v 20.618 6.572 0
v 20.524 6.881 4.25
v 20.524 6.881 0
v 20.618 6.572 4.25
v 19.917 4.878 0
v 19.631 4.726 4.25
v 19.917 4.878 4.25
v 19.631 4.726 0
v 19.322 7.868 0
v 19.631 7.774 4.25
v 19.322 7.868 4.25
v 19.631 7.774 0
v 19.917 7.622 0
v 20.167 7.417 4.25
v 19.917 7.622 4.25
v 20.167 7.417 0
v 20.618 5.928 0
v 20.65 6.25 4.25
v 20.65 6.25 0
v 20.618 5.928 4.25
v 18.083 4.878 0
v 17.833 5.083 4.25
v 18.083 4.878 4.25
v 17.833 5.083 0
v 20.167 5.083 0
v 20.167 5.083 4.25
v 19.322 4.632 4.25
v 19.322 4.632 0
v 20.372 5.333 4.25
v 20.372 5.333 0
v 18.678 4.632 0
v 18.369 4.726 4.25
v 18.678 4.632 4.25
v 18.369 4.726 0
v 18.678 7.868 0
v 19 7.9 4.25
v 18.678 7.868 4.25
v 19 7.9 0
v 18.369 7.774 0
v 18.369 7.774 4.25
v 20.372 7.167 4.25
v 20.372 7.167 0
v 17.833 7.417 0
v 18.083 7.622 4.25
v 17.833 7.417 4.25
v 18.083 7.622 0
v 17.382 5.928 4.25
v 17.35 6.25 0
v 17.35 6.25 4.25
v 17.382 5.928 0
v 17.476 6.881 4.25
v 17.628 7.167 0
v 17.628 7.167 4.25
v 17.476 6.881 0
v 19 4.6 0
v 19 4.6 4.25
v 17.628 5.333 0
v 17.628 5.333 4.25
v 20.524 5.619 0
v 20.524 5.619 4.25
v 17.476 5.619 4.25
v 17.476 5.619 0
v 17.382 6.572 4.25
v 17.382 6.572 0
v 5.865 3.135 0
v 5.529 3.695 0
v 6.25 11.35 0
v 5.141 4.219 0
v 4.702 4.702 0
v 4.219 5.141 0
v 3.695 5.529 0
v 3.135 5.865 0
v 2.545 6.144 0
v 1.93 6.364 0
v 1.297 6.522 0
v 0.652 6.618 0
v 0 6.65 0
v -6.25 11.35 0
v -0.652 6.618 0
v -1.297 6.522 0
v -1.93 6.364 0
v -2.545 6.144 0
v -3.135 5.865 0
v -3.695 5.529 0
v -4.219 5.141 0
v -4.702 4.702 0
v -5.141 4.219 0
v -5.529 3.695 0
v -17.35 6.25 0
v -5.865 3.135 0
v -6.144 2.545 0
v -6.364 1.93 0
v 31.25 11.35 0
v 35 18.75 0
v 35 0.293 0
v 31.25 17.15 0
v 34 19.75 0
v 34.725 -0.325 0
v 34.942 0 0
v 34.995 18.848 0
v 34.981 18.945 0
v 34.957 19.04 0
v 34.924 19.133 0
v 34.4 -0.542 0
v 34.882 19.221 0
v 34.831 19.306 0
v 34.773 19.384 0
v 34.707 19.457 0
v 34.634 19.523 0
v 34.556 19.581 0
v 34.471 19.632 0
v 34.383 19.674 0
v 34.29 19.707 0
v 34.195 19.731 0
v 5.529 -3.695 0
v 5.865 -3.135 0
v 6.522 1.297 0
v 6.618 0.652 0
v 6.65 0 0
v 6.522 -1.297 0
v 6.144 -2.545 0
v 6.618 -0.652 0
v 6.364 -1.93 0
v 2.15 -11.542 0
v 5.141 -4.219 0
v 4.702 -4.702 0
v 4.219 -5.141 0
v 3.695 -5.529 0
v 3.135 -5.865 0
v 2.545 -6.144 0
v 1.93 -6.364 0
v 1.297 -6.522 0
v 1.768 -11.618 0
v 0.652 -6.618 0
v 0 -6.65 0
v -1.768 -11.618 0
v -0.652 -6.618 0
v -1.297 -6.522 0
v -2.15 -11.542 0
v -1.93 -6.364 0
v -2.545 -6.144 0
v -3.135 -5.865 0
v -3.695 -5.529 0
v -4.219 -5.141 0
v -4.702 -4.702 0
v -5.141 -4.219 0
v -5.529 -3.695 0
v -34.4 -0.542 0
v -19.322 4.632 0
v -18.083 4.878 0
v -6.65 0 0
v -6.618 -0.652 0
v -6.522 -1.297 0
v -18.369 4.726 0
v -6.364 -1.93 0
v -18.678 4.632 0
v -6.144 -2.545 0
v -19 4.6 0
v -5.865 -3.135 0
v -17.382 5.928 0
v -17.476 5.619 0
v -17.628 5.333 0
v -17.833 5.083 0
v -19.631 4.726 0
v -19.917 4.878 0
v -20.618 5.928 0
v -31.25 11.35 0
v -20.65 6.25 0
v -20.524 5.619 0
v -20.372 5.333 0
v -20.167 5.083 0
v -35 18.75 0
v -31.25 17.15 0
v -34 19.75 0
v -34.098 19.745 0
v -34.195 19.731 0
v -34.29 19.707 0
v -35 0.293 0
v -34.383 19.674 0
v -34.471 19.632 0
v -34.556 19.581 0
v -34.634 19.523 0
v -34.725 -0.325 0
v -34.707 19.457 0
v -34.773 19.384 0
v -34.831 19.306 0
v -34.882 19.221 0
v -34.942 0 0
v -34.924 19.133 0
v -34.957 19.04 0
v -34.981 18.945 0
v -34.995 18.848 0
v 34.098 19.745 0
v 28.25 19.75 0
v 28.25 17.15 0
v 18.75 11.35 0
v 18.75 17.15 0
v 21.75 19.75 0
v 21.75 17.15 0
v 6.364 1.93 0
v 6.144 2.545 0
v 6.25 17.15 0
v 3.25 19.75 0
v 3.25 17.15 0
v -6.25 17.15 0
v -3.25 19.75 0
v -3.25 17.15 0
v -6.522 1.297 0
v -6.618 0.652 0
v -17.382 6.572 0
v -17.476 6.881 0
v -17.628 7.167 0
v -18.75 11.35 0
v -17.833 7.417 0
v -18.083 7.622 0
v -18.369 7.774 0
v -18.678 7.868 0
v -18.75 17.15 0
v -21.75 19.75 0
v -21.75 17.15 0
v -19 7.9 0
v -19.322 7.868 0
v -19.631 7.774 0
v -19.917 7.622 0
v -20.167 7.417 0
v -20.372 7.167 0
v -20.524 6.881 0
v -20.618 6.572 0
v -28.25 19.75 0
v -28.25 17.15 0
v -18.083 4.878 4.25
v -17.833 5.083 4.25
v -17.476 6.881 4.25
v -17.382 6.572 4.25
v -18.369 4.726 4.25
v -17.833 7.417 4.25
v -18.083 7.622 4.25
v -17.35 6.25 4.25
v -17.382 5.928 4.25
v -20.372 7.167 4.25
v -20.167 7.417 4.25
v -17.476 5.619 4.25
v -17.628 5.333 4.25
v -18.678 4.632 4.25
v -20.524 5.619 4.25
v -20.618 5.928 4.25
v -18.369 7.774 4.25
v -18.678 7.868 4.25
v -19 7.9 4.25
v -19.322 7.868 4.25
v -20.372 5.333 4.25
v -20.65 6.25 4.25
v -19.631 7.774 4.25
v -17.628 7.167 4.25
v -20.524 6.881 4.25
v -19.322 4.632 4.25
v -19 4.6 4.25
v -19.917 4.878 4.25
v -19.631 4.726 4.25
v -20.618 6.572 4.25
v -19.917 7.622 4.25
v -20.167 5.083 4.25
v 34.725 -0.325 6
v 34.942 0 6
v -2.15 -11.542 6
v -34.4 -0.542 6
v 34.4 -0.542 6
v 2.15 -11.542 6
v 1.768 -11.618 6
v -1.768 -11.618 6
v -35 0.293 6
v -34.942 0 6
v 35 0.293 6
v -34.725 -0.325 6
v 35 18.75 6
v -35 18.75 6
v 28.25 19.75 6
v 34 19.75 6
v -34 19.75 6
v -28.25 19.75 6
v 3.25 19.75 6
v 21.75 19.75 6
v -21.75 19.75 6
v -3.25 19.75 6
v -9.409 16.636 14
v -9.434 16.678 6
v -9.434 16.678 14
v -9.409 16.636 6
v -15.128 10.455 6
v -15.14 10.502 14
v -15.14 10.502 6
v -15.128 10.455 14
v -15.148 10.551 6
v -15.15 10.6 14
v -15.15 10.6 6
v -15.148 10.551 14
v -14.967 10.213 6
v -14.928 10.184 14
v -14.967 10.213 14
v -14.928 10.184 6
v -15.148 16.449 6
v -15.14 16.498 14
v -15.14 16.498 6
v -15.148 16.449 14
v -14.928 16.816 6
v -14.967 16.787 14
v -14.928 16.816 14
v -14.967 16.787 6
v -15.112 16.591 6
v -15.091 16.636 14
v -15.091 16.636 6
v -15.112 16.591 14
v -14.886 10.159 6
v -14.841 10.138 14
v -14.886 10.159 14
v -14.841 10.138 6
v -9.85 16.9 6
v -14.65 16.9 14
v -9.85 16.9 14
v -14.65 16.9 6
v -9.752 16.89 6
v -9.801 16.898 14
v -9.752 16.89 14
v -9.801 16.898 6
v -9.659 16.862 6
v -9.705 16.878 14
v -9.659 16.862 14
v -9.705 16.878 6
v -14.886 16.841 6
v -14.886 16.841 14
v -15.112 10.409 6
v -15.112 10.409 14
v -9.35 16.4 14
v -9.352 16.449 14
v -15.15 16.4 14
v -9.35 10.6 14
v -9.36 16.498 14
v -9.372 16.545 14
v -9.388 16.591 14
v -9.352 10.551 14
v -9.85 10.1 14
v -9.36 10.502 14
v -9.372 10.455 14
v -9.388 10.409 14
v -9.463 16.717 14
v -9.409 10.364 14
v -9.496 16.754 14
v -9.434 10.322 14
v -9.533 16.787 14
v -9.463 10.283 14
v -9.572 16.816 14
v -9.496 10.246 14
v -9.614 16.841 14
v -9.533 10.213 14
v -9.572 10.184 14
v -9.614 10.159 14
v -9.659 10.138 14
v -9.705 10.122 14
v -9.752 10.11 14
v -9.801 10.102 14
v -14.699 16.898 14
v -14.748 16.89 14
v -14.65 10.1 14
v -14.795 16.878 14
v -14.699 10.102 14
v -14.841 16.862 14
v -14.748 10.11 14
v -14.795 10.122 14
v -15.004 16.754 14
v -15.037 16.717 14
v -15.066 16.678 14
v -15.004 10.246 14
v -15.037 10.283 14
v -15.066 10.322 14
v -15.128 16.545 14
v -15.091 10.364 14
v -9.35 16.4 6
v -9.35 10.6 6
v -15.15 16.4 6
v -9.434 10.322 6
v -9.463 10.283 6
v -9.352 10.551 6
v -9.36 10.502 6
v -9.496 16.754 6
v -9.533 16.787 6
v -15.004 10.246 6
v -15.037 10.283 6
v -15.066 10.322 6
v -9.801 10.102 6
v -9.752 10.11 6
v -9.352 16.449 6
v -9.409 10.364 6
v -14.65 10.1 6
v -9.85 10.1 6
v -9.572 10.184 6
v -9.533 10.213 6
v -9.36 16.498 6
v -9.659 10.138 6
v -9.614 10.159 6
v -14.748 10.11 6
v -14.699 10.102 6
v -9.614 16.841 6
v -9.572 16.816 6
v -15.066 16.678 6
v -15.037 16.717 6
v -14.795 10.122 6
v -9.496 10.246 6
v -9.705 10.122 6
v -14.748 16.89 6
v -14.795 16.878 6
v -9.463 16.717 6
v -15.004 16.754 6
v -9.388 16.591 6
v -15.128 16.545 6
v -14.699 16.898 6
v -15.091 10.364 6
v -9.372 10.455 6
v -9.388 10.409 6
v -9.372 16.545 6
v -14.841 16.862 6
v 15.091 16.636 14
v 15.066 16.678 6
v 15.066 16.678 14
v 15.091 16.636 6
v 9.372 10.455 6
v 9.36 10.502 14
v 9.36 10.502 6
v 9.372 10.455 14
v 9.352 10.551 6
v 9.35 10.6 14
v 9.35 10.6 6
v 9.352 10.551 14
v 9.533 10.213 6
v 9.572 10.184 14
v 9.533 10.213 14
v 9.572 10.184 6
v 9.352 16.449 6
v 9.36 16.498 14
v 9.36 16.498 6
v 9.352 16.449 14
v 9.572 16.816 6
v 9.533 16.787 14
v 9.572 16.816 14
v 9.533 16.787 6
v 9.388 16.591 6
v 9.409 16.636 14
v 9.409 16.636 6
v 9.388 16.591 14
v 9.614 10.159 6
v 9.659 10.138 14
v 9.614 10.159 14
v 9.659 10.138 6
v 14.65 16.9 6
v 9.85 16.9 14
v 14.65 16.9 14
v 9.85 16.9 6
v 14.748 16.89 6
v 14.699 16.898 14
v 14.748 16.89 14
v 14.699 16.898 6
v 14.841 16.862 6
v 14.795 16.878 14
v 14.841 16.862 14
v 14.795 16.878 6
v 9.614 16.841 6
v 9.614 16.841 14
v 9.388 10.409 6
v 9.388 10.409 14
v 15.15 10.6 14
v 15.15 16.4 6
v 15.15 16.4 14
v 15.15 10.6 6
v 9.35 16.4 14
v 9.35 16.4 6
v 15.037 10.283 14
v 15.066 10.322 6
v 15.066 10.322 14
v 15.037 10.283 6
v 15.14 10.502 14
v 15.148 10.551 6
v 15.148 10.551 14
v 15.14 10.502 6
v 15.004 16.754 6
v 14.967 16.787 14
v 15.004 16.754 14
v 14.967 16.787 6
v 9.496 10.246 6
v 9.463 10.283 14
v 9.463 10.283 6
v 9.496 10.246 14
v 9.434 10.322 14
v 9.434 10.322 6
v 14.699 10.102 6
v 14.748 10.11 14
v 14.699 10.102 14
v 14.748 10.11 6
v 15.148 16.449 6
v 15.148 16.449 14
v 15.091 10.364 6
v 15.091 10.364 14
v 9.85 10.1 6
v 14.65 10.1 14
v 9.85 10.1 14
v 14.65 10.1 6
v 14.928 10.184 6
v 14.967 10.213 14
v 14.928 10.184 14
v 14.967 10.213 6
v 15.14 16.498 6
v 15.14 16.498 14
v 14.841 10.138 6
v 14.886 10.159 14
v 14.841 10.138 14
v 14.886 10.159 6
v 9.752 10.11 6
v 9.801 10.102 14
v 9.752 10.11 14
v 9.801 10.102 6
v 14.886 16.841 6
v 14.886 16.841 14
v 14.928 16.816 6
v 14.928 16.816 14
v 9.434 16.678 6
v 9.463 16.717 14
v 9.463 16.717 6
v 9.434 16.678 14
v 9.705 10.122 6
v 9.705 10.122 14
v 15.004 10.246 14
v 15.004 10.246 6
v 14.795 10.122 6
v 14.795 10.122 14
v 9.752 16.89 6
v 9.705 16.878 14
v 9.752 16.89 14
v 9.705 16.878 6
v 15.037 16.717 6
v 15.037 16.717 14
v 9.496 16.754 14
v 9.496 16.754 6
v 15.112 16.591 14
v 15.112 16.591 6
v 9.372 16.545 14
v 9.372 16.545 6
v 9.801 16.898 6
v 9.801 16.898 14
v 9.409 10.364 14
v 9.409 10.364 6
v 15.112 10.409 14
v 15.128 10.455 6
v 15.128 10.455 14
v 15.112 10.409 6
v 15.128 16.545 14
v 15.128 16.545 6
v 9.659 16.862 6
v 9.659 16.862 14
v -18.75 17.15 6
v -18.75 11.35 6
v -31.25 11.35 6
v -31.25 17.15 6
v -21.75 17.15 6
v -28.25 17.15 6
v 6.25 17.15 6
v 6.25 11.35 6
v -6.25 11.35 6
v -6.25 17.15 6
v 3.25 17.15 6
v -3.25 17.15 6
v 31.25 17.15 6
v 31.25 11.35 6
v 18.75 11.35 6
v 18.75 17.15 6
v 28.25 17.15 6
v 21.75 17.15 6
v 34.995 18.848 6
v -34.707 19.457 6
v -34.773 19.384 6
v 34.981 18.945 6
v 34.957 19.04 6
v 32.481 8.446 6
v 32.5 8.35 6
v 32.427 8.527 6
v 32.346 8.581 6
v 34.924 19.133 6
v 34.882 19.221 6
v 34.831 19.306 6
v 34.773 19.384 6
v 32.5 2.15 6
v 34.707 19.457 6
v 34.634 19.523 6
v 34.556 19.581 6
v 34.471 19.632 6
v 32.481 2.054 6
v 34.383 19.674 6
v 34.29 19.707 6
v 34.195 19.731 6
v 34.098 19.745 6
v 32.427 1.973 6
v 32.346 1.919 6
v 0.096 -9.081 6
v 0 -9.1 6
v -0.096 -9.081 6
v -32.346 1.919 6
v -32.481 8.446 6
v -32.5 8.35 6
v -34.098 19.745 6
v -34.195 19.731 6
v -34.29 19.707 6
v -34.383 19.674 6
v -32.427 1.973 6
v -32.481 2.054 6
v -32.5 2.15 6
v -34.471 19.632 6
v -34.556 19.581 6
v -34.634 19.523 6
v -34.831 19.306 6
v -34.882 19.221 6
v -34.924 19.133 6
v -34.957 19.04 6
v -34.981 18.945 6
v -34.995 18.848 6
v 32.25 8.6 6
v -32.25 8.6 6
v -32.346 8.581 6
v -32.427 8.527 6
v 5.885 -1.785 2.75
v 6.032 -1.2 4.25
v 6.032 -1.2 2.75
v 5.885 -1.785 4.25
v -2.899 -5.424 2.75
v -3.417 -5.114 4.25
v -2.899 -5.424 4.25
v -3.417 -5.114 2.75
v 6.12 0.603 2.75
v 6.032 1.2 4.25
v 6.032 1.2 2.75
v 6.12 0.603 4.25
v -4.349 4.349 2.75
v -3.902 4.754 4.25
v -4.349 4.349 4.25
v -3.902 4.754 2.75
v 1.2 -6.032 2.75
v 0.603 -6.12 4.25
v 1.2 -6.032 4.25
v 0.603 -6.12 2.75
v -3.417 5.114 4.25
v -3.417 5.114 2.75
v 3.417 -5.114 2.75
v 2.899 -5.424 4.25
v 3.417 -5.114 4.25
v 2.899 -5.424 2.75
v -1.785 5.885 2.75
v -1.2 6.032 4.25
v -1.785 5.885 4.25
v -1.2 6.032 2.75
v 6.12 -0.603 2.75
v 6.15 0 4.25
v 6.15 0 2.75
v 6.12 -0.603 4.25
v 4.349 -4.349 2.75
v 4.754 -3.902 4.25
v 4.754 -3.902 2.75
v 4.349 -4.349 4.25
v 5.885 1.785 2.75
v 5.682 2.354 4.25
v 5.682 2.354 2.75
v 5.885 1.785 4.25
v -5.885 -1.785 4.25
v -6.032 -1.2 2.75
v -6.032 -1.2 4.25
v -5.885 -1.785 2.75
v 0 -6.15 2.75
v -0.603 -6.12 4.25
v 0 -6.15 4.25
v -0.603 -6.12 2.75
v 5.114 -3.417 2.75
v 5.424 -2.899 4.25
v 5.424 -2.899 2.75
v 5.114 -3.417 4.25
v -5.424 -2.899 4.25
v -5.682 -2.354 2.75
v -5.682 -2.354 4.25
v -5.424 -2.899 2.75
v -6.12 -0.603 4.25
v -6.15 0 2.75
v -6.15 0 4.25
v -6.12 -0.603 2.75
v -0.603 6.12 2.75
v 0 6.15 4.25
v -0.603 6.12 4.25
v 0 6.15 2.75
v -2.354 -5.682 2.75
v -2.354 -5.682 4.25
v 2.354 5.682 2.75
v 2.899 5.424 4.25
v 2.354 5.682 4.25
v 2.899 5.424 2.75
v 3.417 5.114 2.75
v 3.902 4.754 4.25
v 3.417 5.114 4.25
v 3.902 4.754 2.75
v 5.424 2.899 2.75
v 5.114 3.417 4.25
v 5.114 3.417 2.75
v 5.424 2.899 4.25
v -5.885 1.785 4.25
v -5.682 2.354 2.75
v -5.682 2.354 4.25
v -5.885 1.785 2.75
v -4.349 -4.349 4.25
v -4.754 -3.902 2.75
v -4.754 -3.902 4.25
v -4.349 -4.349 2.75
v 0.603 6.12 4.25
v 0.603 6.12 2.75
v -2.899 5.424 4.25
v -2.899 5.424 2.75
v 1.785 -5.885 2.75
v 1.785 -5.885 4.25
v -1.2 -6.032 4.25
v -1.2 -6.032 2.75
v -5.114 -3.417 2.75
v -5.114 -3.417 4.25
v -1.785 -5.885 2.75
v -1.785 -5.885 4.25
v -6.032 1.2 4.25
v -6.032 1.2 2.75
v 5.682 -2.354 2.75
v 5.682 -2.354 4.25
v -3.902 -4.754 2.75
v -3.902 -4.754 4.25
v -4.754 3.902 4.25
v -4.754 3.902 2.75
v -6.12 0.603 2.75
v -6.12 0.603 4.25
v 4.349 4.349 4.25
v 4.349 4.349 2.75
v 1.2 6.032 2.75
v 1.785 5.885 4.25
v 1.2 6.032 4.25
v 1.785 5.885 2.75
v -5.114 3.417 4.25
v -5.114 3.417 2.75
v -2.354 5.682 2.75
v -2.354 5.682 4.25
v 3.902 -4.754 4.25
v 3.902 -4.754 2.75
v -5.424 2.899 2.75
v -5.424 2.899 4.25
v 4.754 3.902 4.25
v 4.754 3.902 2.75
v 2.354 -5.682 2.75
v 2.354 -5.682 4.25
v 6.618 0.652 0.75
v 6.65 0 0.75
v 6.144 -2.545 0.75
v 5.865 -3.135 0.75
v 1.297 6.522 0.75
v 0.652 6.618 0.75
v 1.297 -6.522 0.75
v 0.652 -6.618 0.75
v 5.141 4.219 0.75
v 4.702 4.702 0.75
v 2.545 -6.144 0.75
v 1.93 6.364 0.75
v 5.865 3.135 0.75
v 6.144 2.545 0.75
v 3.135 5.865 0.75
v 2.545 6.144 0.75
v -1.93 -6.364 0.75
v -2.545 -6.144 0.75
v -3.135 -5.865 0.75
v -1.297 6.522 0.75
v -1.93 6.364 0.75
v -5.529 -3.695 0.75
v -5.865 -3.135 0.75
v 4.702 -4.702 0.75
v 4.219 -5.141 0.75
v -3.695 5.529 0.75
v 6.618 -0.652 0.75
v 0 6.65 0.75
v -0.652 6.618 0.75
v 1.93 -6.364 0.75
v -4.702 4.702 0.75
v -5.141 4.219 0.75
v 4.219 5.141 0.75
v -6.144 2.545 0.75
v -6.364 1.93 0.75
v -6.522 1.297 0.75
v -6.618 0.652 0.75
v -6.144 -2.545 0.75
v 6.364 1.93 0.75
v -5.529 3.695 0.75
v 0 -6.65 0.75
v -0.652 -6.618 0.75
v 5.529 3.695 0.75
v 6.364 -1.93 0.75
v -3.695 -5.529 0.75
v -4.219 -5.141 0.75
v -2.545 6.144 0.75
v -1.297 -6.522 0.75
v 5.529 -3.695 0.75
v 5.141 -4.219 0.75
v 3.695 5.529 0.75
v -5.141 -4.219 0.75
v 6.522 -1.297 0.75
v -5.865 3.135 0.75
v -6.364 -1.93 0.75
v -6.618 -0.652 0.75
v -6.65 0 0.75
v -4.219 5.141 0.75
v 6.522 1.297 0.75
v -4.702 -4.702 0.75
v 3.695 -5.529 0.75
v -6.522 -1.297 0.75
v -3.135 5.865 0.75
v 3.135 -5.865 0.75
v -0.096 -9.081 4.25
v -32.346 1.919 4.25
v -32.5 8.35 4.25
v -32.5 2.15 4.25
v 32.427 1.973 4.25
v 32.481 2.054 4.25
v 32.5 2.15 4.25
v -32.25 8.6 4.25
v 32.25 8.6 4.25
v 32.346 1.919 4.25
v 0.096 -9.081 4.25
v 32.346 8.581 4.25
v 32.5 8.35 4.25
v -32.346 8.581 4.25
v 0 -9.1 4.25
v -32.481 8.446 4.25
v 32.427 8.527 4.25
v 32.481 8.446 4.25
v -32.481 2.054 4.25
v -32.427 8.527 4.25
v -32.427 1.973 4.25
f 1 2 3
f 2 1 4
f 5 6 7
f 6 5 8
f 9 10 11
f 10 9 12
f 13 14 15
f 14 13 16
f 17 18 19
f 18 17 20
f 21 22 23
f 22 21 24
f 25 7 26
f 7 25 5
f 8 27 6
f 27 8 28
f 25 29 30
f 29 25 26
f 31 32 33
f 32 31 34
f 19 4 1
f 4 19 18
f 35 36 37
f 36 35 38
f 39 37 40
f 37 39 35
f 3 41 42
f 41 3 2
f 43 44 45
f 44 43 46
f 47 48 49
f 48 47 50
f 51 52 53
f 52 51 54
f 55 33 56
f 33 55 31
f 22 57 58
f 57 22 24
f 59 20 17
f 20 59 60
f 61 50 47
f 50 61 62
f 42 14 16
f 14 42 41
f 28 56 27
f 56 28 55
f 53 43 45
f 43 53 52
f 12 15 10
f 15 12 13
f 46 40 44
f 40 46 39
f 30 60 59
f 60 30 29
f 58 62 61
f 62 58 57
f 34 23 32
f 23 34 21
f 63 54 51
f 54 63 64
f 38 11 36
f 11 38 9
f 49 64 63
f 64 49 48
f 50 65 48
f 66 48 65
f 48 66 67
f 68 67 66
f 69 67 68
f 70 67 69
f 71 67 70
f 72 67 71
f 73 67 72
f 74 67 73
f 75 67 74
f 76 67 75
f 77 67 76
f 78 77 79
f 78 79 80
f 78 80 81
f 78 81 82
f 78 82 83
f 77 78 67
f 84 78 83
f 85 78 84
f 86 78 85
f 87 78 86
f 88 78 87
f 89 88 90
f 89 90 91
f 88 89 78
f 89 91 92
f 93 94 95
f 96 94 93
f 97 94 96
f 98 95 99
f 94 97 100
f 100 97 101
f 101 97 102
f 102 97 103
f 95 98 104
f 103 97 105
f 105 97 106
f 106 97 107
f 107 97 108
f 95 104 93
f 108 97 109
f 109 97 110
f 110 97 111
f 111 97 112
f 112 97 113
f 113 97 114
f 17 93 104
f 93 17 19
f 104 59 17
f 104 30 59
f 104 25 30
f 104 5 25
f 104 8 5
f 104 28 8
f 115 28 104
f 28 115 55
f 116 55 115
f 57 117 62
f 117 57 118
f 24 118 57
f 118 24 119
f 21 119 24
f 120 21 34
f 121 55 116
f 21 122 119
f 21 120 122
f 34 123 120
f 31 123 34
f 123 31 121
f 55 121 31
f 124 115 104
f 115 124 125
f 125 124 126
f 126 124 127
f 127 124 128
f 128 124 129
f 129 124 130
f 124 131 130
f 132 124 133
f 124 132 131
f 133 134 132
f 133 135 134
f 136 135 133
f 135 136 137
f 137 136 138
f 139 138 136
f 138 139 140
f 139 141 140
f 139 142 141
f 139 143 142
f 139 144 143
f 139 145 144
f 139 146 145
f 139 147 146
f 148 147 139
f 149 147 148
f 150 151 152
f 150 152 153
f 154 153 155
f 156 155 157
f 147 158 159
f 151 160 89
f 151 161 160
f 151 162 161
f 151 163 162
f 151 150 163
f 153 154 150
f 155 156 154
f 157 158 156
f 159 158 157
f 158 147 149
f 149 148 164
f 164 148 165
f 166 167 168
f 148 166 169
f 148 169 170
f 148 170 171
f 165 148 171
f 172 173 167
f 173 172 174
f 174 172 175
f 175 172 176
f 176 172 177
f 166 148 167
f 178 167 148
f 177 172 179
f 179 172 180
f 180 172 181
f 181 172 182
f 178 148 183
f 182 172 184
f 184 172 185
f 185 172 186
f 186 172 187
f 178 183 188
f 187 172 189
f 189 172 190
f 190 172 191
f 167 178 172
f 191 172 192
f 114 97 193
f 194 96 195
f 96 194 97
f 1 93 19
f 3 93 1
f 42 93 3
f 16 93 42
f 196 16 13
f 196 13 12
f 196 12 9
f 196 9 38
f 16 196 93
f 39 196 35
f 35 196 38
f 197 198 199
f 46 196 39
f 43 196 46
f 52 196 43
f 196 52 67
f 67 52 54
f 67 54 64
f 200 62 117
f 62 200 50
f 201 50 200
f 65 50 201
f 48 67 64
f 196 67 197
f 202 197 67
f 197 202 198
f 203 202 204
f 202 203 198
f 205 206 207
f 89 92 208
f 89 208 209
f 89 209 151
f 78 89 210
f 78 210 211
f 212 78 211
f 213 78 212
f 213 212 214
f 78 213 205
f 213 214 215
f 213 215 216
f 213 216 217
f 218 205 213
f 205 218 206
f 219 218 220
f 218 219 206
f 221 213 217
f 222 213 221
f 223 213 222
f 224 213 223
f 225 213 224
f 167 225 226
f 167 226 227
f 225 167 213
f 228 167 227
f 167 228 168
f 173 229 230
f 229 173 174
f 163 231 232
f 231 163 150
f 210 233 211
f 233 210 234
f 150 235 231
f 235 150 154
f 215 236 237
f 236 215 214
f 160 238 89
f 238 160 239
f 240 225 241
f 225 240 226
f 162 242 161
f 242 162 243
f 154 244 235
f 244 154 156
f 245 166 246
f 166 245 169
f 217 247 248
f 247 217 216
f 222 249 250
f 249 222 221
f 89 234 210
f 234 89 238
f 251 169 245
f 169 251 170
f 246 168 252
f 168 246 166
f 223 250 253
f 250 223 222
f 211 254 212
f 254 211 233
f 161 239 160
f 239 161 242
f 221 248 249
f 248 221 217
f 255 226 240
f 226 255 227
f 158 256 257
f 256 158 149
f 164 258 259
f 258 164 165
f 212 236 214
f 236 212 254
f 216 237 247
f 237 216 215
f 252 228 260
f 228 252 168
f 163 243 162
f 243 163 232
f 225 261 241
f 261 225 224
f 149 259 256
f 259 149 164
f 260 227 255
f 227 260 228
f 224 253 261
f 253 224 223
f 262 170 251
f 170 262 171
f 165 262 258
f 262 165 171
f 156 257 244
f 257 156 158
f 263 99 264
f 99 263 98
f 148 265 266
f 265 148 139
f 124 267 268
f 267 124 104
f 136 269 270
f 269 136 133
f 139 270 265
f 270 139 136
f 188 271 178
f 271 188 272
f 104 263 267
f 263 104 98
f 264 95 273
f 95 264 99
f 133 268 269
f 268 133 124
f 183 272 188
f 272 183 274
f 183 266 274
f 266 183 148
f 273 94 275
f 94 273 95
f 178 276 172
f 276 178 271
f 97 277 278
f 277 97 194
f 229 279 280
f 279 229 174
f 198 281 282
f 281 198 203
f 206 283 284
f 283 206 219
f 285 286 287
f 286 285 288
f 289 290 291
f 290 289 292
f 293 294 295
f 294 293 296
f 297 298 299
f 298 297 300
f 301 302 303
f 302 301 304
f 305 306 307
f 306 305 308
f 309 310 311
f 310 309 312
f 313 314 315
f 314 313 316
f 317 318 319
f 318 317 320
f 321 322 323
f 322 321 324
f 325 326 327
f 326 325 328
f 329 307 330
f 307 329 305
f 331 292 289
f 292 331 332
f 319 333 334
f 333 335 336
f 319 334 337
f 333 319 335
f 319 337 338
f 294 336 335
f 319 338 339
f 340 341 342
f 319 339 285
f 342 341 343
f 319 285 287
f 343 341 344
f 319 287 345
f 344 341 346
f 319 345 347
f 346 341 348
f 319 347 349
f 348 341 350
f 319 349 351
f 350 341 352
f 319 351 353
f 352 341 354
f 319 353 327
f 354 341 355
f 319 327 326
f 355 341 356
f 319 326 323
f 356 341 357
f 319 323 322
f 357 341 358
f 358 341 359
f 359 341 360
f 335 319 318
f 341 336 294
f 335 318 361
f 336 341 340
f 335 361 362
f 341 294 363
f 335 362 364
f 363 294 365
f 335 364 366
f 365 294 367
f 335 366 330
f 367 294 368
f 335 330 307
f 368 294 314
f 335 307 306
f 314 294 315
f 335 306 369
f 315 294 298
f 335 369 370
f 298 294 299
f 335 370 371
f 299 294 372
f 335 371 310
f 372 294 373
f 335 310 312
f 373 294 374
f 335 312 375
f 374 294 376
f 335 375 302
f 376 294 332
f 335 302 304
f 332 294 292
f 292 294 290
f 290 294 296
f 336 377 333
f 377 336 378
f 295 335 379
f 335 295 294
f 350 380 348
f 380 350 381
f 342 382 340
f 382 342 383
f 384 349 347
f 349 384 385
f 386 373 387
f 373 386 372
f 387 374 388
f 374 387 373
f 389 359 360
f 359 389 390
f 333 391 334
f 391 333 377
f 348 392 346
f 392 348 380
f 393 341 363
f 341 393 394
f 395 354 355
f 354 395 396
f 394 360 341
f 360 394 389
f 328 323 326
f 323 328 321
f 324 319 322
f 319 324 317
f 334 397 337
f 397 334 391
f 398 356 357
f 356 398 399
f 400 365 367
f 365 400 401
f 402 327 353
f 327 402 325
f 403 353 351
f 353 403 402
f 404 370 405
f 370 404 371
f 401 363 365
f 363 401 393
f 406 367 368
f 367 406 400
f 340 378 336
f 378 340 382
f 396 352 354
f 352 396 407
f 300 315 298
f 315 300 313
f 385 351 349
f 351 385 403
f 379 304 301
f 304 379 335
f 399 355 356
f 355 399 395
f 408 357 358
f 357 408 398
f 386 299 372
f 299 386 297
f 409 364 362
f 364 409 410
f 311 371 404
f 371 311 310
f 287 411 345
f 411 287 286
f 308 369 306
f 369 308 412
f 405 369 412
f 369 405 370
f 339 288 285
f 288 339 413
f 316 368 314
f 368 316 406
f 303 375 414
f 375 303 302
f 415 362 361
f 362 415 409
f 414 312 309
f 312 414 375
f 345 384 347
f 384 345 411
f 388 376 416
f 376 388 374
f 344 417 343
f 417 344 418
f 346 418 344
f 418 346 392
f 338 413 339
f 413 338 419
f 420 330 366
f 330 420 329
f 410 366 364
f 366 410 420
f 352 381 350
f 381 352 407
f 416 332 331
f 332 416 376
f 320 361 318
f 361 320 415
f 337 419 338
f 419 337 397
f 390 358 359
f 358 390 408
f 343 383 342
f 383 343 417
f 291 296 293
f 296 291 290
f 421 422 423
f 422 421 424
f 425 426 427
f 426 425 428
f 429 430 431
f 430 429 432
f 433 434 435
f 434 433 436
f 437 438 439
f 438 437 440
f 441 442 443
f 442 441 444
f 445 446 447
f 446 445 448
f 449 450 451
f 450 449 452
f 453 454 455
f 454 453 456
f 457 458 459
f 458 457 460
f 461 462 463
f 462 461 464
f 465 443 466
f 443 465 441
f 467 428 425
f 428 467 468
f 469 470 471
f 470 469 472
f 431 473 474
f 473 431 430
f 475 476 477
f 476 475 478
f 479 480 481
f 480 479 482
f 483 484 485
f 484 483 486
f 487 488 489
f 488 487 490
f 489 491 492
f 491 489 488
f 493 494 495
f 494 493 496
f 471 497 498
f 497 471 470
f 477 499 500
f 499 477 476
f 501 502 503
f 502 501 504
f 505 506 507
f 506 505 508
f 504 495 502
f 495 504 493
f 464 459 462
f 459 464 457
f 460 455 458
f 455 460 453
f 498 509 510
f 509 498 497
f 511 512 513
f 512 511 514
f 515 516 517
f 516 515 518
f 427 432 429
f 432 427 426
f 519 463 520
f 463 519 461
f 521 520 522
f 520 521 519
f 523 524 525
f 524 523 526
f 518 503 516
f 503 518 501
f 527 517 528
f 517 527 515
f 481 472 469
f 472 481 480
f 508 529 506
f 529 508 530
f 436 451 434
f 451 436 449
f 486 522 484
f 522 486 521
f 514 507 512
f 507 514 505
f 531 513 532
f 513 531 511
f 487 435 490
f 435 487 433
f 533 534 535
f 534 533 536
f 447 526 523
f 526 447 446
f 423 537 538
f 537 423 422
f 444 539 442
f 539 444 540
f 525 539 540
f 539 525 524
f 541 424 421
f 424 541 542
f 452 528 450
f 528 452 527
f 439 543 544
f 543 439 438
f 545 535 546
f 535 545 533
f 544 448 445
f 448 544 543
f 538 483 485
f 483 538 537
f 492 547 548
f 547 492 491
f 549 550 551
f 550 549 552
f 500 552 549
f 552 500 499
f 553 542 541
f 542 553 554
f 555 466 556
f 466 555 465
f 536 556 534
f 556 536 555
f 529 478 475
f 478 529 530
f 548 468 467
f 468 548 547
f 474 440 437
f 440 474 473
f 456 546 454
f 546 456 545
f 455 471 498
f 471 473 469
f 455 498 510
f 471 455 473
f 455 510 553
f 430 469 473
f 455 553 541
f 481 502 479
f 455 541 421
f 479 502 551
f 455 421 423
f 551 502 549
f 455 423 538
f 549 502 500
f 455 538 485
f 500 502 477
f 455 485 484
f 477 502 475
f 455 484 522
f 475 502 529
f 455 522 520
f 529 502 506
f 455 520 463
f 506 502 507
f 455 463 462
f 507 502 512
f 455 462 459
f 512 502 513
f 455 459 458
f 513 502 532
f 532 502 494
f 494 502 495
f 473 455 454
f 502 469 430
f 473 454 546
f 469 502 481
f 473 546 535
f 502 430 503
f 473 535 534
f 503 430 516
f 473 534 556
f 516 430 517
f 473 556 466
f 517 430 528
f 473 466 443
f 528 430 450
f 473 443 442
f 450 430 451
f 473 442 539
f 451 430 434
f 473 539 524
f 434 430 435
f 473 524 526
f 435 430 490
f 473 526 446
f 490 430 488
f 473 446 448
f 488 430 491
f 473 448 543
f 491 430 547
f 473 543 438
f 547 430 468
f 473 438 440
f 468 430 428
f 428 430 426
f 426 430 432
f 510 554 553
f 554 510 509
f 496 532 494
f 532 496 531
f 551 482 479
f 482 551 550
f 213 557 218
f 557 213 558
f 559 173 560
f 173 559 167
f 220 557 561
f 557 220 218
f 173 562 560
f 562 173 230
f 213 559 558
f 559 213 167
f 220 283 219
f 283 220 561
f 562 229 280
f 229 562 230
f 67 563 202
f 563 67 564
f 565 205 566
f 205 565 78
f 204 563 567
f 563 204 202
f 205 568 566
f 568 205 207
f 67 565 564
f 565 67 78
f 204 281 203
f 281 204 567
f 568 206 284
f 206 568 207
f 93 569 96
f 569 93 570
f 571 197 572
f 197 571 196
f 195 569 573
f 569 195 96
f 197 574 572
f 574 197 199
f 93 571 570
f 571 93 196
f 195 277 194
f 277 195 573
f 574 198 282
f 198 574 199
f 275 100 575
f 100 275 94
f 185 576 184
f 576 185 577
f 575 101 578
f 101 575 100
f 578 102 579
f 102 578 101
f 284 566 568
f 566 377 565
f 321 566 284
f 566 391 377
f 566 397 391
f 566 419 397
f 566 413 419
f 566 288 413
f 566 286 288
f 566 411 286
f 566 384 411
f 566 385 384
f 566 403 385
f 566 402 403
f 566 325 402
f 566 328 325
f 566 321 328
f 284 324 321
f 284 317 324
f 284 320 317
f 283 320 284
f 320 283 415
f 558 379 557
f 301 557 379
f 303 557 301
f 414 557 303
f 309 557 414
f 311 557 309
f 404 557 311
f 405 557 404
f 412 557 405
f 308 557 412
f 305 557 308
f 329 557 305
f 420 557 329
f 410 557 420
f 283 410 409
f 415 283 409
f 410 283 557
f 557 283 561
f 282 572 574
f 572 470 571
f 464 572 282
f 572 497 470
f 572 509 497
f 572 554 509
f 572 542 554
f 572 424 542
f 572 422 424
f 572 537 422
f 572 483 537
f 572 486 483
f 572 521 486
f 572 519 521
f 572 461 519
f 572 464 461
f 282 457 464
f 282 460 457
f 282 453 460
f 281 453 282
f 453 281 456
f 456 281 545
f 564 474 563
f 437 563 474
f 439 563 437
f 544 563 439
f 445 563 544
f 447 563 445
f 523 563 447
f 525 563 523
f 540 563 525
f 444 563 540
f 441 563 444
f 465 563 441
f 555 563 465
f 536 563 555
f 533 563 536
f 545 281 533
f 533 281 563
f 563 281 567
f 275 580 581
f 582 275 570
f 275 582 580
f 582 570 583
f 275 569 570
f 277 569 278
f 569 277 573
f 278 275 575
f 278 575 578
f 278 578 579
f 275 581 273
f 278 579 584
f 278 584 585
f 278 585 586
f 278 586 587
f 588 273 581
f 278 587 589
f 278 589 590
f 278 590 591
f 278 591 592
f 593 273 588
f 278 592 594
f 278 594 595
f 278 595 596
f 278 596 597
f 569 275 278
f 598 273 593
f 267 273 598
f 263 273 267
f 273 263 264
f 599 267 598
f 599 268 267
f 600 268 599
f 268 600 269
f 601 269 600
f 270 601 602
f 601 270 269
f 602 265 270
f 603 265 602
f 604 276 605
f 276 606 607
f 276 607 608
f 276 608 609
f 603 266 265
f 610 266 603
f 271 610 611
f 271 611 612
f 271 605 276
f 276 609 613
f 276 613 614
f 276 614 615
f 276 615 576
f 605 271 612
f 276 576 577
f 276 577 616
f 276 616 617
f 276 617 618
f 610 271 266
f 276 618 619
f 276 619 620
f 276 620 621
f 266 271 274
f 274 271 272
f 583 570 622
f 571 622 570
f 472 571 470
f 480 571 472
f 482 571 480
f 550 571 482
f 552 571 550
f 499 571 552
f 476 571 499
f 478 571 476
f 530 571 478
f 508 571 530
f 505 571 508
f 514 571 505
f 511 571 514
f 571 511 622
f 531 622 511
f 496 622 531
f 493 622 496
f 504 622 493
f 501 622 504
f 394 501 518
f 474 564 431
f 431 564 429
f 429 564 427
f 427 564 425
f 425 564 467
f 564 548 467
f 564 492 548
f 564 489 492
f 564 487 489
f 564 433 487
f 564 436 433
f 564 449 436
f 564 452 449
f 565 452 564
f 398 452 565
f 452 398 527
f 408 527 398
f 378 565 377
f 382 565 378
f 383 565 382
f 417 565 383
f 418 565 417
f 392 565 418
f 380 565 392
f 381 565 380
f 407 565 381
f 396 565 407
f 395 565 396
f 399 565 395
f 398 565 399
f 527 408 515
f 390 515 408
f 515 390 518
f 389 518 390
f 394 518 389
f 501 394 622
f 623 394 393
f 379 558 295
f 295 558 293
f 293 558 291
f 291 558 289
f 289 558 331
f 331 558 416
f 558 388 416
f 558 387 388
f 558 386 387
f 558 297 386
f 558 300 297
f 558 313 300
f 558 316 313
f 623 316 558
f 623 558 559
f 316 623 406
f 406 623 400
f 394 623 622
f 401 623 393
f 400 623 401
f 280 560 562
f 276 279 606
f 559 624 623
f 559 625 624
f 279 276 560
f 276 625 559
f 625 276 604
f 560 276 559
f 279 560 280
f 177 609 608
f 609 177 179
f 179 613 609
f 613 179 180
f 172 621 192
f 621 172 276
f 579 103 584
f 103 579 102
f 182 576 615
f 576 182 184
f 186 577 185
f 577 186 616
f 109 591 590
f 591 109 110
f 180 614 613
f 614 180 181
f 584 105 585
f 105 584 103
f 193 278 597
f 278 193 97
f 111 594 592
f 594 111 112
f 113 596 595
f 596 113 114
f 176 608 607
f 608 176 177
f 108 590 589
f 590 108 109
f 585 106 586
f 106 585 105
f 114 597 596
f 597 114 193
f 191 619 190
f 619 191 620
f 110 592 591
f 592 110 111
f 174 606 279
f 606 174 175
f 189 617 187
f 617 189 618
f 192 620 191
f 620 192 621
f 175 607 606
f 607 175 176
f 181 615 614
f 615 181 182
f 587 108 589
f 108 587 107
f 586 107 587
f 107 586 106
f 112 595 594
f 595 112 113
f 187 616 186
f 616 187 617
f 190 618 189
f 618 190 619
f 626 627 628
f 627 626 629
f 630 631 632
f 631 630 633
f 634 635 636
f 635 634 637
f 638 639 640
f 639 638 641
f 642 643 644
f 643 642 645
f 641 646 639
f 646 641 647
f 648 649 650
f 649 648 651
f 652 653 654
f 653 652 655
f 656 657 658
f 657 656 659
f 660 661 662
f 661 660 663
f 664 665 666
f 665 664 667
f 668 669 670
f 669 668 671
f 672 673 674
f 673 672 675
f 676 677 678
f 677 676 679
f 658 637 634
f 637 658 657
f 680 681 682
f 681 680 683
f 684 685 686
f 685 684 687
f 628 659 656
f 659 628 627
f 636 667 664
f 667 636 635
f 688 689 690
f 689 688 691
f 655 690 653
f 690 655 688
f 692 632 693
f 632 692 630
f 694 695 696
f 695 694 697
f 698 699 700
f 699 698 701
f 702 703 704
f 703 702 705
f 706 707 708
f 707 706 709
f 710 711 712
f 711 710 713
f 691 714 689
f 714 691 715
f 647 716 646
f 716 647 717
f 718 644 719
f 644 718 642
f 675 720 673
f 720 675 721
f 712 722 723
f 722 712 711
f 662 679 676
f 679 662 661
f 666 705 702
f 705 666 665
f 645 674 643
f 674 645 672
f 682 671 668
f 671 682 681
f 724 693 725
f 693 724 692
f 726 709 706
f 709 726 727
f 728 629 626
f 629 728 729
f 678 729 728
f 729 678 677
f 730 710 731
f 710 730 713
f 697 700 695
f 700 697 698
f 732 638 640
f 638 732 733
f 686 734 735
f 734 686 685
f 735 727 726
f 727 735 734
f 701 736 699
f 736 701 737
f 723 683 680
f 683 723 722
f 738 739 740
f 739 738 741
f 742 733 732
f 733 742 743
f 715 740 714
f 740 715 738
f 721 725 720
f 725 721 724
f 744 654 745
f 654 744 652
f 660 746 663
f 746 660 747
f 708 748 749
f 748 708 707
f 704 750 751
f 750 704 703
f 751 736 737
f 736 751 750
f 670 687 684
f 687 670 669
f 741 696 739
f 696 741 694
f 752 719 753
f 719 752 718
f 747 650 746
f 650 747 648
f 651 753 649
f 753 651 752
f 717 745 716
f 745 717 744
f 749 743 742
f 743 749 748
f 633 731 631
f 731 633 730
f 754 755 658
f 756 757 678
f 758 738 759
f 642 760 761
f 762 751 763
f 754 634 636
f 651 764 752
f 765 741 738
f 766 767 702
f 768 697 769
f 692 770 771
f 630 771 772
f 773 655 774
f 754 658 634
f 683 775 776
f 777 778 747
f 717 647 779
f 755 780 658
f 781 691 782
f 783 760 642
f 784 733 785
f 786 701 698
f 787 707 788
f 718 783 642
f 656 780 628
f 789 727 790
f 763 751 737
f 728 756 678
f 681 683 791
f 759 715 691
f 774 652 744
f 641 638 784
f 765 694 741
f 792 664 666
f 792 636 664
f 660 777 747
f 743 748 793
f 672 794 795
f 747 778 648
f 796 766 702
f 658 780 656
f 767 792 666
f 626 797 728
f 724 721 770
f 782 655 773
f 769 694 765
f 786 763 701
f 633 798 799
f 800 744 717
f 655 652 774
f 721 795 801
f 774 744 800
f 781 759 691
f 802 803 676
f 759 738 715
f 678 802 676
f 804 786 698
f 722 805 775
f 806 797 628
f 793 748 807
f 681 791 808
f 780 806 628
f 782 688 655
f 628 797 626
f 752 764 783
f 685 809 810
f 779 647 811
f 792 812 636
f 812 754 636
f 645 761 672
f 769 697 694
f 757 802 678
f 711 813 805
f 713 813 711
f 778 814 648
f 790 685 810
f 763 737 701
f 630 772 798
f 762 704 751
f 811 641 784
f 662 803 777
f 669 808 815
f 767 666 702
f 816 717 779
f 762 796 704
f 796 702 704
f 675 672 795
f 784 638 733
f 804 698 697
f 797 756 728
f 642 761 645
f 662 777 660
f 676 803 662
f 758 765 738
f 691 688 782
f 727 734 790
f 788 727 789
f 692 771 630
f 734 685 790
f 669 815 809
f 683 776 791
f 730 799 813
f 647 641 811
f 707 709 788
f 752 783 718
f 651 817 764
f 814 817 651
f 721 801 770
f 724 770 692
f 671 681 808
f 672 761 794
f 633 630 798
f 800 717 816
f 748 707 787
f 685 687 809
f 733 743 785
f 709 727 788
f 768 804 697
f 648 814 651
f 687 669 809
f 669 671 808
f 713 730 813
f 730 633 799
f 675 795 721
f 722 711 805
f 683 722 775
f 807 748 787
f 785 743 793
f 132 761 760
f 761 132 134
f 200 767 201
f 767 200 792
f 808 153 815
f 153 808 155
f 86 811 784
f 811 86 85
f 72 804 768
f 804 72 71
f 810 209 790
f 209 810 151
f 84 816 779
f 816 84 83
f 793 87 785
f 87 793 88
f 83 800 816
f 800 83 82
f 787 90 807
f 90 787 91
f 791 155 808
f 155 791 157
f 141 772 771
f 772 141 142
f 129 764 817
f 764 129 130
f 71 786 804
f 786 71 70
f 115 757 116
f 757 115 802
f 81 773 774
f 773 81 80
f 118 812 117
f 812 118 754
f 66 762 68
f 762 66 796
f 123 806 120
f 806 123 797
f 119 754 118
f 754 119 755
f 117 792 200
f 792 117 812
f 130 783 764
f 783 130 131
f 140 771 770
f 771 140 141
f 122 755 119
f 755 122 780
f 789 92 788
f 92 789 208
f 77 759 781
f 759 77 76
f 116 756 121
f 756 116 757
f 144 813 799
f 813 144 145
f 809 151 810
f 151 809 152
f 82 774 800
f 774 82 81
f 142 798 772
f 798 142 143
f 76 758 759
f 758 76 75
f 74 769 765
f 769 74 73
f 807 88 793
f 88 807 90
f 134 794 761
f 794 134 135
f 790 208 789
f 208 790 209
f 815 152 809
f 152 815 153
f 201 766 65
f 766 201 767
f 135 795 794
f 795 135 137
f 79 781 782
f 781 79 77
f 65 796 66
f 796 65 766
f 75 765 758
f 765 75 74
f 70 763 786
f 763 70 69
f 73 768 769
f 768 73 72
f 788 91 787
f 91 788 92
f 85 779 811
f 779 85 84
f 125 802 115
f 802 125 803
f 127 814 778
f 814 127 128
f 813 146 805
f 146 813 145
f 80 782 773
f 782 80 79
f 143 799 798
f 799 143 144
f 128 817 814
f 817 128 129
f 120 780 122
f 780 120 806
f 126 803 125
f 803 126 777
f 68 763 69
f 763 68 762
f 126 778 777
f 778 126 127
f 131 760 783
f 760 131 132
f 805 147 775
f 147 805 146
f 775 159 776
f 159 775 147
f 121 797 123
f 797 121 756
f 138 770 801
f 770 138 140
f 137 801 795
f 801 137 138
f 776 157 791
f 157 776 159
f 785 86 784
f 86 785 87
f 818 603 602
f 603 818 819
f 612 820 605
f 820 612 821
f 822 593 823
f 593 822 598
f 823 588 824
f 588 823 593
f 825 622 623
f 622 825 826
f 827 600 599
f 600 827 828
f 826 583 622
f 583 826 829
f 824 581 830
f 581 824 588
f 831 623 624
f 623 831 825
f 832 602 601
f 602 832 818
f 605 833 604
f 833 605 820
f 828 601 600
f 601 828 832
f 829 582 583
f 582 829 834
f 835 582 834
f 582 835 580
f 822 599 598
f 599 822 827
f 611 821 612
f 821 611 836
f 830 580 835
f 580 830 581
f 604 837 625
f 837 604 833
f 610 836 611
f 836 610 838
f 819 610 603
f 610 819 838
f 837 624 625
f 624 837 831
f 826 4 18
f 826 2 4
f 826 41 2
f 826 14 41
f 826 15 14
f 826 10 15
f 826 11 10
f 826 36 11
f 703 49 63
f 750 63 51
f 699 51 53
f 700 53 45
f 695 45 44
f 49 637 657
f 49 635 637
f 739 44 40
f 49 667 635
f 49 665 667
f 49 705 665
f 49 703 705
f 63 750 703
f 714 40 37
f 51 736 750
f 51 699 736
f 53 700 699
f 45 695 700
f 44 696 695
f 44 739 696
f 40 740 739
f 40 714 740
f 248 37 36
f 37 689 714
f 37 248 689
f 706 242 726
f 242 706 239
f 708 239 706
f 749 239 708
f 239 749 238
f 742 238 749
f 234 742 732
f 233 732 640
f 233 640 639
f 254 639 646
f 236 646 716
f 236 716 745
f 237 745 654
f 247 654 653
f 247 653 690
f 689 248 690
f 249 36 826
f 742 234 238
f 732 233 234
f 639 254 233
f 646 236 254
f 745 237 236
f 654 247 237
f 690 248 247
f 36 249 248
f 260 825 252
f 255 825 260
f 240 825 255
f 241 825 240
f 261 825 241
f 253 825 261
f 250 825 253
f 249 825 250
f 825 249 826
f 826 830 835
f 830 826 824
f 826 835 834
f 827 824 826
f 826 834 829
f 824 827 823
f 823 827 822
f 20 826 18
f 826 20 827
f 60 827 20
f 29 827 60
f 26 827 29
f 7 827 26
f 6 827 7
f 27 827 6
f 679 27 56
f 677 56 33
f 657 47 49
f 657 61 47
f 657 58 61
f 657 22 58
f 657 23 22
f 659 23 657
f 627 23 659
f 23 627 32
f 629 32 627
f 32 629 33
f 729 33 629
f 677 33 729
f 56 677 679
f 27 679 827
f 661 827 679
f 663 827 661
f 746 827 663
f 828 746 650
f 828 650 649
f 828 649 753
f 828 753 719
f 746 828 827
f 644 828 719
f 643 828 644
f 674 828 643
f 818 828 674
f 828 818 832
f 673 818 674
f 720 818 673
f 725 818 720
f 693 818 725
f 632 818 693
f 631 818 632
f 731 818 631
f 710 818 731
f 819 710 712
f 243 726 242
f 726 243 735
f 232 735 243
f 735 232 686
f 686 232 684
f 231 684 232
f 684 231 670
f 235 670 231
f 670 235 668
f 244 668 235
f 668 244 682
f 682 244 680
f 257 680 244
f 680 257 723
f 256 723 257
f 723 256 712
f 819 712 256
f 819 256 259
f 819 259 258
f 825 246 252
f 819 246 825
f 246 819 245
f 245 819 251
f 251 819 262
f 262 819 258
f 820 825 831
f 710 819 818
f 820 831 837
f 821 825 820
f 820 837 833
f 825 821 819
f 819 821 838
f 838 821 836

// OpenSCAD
module pentagon() {
    translate([0,-8.6-0.25,0])
    polygon(points=[[0,0],[-32.25,11],[-32.25,17.2],[32.25,17.2],[32.25,11]]);
}

difference() {
    union() {
        intersection() {
    
            cube_center([70,19.5*2+.5,6],r=1);
            union() {
    minkowski() {
        linear_extrude(height=15)
        pentagon();
        cylinder(d=2,h=0.001,$fn=16);
        rotate([0,0,45])
        cylinder(d=5,h=0.001,$fn=4);
    }
    
    
    translate([0,13,0])
    cube_center([70,13.5,15]);

    
}
    
        }
        
        for(i=[-1,1])
            translate([i*12.25,13.5,0])
            cube_center([5.8,6.8,14],r=0.5);
        
        
        
    }
    translate([0,0,6-1.75-1.5])
    cylinder(d=12.3,h=100,$fn=64);
    translate([0,0,6-1.75-1.5-2])
    cylinder(d1=13.3,d2=12.3,h=2,$fn=64);
    cylinder(d=13.3,h=6-1.75-1.5-2,$fn=64);
    
    translate([0,0,6-1.75])
    minkowski() {
        linear_extrude(height=2)
        pentagon();
        cylinder(d=0.5,h=0.001,$fn=16);
    }
    
    for(i=[-1,1]) {
            translate([-i*19,6.25,0])
        cylinder(d=3.3,h=100,$fn=32);
    }
    
    
    
    
        for(i=[-1,0,1]) { 
            translate([i*25,14.25,0])
            cube_center([12.5,5.8,100]);
        
        
            translate([i*25,14.25+3,0])
            cube_center([6.5,5,100]);
        }
    



}
    
    


module cube_center(dims,r=0,$fn=64) {
    if(r==0) {
        translate([-dims[0]/2, -dims[1]/2, 0])
        cube(dims);
    } else {
        minkowski() {
            translate([-(dims[0]-2*r)/2, -(dims[1]-2*r)/2, 0])
            cube([dims[0]-2*r,dims[1]-2*r,dims[2]]);
            cylinder(r=r,$fn=$fn,h=0.0001);
        }
    }
}
